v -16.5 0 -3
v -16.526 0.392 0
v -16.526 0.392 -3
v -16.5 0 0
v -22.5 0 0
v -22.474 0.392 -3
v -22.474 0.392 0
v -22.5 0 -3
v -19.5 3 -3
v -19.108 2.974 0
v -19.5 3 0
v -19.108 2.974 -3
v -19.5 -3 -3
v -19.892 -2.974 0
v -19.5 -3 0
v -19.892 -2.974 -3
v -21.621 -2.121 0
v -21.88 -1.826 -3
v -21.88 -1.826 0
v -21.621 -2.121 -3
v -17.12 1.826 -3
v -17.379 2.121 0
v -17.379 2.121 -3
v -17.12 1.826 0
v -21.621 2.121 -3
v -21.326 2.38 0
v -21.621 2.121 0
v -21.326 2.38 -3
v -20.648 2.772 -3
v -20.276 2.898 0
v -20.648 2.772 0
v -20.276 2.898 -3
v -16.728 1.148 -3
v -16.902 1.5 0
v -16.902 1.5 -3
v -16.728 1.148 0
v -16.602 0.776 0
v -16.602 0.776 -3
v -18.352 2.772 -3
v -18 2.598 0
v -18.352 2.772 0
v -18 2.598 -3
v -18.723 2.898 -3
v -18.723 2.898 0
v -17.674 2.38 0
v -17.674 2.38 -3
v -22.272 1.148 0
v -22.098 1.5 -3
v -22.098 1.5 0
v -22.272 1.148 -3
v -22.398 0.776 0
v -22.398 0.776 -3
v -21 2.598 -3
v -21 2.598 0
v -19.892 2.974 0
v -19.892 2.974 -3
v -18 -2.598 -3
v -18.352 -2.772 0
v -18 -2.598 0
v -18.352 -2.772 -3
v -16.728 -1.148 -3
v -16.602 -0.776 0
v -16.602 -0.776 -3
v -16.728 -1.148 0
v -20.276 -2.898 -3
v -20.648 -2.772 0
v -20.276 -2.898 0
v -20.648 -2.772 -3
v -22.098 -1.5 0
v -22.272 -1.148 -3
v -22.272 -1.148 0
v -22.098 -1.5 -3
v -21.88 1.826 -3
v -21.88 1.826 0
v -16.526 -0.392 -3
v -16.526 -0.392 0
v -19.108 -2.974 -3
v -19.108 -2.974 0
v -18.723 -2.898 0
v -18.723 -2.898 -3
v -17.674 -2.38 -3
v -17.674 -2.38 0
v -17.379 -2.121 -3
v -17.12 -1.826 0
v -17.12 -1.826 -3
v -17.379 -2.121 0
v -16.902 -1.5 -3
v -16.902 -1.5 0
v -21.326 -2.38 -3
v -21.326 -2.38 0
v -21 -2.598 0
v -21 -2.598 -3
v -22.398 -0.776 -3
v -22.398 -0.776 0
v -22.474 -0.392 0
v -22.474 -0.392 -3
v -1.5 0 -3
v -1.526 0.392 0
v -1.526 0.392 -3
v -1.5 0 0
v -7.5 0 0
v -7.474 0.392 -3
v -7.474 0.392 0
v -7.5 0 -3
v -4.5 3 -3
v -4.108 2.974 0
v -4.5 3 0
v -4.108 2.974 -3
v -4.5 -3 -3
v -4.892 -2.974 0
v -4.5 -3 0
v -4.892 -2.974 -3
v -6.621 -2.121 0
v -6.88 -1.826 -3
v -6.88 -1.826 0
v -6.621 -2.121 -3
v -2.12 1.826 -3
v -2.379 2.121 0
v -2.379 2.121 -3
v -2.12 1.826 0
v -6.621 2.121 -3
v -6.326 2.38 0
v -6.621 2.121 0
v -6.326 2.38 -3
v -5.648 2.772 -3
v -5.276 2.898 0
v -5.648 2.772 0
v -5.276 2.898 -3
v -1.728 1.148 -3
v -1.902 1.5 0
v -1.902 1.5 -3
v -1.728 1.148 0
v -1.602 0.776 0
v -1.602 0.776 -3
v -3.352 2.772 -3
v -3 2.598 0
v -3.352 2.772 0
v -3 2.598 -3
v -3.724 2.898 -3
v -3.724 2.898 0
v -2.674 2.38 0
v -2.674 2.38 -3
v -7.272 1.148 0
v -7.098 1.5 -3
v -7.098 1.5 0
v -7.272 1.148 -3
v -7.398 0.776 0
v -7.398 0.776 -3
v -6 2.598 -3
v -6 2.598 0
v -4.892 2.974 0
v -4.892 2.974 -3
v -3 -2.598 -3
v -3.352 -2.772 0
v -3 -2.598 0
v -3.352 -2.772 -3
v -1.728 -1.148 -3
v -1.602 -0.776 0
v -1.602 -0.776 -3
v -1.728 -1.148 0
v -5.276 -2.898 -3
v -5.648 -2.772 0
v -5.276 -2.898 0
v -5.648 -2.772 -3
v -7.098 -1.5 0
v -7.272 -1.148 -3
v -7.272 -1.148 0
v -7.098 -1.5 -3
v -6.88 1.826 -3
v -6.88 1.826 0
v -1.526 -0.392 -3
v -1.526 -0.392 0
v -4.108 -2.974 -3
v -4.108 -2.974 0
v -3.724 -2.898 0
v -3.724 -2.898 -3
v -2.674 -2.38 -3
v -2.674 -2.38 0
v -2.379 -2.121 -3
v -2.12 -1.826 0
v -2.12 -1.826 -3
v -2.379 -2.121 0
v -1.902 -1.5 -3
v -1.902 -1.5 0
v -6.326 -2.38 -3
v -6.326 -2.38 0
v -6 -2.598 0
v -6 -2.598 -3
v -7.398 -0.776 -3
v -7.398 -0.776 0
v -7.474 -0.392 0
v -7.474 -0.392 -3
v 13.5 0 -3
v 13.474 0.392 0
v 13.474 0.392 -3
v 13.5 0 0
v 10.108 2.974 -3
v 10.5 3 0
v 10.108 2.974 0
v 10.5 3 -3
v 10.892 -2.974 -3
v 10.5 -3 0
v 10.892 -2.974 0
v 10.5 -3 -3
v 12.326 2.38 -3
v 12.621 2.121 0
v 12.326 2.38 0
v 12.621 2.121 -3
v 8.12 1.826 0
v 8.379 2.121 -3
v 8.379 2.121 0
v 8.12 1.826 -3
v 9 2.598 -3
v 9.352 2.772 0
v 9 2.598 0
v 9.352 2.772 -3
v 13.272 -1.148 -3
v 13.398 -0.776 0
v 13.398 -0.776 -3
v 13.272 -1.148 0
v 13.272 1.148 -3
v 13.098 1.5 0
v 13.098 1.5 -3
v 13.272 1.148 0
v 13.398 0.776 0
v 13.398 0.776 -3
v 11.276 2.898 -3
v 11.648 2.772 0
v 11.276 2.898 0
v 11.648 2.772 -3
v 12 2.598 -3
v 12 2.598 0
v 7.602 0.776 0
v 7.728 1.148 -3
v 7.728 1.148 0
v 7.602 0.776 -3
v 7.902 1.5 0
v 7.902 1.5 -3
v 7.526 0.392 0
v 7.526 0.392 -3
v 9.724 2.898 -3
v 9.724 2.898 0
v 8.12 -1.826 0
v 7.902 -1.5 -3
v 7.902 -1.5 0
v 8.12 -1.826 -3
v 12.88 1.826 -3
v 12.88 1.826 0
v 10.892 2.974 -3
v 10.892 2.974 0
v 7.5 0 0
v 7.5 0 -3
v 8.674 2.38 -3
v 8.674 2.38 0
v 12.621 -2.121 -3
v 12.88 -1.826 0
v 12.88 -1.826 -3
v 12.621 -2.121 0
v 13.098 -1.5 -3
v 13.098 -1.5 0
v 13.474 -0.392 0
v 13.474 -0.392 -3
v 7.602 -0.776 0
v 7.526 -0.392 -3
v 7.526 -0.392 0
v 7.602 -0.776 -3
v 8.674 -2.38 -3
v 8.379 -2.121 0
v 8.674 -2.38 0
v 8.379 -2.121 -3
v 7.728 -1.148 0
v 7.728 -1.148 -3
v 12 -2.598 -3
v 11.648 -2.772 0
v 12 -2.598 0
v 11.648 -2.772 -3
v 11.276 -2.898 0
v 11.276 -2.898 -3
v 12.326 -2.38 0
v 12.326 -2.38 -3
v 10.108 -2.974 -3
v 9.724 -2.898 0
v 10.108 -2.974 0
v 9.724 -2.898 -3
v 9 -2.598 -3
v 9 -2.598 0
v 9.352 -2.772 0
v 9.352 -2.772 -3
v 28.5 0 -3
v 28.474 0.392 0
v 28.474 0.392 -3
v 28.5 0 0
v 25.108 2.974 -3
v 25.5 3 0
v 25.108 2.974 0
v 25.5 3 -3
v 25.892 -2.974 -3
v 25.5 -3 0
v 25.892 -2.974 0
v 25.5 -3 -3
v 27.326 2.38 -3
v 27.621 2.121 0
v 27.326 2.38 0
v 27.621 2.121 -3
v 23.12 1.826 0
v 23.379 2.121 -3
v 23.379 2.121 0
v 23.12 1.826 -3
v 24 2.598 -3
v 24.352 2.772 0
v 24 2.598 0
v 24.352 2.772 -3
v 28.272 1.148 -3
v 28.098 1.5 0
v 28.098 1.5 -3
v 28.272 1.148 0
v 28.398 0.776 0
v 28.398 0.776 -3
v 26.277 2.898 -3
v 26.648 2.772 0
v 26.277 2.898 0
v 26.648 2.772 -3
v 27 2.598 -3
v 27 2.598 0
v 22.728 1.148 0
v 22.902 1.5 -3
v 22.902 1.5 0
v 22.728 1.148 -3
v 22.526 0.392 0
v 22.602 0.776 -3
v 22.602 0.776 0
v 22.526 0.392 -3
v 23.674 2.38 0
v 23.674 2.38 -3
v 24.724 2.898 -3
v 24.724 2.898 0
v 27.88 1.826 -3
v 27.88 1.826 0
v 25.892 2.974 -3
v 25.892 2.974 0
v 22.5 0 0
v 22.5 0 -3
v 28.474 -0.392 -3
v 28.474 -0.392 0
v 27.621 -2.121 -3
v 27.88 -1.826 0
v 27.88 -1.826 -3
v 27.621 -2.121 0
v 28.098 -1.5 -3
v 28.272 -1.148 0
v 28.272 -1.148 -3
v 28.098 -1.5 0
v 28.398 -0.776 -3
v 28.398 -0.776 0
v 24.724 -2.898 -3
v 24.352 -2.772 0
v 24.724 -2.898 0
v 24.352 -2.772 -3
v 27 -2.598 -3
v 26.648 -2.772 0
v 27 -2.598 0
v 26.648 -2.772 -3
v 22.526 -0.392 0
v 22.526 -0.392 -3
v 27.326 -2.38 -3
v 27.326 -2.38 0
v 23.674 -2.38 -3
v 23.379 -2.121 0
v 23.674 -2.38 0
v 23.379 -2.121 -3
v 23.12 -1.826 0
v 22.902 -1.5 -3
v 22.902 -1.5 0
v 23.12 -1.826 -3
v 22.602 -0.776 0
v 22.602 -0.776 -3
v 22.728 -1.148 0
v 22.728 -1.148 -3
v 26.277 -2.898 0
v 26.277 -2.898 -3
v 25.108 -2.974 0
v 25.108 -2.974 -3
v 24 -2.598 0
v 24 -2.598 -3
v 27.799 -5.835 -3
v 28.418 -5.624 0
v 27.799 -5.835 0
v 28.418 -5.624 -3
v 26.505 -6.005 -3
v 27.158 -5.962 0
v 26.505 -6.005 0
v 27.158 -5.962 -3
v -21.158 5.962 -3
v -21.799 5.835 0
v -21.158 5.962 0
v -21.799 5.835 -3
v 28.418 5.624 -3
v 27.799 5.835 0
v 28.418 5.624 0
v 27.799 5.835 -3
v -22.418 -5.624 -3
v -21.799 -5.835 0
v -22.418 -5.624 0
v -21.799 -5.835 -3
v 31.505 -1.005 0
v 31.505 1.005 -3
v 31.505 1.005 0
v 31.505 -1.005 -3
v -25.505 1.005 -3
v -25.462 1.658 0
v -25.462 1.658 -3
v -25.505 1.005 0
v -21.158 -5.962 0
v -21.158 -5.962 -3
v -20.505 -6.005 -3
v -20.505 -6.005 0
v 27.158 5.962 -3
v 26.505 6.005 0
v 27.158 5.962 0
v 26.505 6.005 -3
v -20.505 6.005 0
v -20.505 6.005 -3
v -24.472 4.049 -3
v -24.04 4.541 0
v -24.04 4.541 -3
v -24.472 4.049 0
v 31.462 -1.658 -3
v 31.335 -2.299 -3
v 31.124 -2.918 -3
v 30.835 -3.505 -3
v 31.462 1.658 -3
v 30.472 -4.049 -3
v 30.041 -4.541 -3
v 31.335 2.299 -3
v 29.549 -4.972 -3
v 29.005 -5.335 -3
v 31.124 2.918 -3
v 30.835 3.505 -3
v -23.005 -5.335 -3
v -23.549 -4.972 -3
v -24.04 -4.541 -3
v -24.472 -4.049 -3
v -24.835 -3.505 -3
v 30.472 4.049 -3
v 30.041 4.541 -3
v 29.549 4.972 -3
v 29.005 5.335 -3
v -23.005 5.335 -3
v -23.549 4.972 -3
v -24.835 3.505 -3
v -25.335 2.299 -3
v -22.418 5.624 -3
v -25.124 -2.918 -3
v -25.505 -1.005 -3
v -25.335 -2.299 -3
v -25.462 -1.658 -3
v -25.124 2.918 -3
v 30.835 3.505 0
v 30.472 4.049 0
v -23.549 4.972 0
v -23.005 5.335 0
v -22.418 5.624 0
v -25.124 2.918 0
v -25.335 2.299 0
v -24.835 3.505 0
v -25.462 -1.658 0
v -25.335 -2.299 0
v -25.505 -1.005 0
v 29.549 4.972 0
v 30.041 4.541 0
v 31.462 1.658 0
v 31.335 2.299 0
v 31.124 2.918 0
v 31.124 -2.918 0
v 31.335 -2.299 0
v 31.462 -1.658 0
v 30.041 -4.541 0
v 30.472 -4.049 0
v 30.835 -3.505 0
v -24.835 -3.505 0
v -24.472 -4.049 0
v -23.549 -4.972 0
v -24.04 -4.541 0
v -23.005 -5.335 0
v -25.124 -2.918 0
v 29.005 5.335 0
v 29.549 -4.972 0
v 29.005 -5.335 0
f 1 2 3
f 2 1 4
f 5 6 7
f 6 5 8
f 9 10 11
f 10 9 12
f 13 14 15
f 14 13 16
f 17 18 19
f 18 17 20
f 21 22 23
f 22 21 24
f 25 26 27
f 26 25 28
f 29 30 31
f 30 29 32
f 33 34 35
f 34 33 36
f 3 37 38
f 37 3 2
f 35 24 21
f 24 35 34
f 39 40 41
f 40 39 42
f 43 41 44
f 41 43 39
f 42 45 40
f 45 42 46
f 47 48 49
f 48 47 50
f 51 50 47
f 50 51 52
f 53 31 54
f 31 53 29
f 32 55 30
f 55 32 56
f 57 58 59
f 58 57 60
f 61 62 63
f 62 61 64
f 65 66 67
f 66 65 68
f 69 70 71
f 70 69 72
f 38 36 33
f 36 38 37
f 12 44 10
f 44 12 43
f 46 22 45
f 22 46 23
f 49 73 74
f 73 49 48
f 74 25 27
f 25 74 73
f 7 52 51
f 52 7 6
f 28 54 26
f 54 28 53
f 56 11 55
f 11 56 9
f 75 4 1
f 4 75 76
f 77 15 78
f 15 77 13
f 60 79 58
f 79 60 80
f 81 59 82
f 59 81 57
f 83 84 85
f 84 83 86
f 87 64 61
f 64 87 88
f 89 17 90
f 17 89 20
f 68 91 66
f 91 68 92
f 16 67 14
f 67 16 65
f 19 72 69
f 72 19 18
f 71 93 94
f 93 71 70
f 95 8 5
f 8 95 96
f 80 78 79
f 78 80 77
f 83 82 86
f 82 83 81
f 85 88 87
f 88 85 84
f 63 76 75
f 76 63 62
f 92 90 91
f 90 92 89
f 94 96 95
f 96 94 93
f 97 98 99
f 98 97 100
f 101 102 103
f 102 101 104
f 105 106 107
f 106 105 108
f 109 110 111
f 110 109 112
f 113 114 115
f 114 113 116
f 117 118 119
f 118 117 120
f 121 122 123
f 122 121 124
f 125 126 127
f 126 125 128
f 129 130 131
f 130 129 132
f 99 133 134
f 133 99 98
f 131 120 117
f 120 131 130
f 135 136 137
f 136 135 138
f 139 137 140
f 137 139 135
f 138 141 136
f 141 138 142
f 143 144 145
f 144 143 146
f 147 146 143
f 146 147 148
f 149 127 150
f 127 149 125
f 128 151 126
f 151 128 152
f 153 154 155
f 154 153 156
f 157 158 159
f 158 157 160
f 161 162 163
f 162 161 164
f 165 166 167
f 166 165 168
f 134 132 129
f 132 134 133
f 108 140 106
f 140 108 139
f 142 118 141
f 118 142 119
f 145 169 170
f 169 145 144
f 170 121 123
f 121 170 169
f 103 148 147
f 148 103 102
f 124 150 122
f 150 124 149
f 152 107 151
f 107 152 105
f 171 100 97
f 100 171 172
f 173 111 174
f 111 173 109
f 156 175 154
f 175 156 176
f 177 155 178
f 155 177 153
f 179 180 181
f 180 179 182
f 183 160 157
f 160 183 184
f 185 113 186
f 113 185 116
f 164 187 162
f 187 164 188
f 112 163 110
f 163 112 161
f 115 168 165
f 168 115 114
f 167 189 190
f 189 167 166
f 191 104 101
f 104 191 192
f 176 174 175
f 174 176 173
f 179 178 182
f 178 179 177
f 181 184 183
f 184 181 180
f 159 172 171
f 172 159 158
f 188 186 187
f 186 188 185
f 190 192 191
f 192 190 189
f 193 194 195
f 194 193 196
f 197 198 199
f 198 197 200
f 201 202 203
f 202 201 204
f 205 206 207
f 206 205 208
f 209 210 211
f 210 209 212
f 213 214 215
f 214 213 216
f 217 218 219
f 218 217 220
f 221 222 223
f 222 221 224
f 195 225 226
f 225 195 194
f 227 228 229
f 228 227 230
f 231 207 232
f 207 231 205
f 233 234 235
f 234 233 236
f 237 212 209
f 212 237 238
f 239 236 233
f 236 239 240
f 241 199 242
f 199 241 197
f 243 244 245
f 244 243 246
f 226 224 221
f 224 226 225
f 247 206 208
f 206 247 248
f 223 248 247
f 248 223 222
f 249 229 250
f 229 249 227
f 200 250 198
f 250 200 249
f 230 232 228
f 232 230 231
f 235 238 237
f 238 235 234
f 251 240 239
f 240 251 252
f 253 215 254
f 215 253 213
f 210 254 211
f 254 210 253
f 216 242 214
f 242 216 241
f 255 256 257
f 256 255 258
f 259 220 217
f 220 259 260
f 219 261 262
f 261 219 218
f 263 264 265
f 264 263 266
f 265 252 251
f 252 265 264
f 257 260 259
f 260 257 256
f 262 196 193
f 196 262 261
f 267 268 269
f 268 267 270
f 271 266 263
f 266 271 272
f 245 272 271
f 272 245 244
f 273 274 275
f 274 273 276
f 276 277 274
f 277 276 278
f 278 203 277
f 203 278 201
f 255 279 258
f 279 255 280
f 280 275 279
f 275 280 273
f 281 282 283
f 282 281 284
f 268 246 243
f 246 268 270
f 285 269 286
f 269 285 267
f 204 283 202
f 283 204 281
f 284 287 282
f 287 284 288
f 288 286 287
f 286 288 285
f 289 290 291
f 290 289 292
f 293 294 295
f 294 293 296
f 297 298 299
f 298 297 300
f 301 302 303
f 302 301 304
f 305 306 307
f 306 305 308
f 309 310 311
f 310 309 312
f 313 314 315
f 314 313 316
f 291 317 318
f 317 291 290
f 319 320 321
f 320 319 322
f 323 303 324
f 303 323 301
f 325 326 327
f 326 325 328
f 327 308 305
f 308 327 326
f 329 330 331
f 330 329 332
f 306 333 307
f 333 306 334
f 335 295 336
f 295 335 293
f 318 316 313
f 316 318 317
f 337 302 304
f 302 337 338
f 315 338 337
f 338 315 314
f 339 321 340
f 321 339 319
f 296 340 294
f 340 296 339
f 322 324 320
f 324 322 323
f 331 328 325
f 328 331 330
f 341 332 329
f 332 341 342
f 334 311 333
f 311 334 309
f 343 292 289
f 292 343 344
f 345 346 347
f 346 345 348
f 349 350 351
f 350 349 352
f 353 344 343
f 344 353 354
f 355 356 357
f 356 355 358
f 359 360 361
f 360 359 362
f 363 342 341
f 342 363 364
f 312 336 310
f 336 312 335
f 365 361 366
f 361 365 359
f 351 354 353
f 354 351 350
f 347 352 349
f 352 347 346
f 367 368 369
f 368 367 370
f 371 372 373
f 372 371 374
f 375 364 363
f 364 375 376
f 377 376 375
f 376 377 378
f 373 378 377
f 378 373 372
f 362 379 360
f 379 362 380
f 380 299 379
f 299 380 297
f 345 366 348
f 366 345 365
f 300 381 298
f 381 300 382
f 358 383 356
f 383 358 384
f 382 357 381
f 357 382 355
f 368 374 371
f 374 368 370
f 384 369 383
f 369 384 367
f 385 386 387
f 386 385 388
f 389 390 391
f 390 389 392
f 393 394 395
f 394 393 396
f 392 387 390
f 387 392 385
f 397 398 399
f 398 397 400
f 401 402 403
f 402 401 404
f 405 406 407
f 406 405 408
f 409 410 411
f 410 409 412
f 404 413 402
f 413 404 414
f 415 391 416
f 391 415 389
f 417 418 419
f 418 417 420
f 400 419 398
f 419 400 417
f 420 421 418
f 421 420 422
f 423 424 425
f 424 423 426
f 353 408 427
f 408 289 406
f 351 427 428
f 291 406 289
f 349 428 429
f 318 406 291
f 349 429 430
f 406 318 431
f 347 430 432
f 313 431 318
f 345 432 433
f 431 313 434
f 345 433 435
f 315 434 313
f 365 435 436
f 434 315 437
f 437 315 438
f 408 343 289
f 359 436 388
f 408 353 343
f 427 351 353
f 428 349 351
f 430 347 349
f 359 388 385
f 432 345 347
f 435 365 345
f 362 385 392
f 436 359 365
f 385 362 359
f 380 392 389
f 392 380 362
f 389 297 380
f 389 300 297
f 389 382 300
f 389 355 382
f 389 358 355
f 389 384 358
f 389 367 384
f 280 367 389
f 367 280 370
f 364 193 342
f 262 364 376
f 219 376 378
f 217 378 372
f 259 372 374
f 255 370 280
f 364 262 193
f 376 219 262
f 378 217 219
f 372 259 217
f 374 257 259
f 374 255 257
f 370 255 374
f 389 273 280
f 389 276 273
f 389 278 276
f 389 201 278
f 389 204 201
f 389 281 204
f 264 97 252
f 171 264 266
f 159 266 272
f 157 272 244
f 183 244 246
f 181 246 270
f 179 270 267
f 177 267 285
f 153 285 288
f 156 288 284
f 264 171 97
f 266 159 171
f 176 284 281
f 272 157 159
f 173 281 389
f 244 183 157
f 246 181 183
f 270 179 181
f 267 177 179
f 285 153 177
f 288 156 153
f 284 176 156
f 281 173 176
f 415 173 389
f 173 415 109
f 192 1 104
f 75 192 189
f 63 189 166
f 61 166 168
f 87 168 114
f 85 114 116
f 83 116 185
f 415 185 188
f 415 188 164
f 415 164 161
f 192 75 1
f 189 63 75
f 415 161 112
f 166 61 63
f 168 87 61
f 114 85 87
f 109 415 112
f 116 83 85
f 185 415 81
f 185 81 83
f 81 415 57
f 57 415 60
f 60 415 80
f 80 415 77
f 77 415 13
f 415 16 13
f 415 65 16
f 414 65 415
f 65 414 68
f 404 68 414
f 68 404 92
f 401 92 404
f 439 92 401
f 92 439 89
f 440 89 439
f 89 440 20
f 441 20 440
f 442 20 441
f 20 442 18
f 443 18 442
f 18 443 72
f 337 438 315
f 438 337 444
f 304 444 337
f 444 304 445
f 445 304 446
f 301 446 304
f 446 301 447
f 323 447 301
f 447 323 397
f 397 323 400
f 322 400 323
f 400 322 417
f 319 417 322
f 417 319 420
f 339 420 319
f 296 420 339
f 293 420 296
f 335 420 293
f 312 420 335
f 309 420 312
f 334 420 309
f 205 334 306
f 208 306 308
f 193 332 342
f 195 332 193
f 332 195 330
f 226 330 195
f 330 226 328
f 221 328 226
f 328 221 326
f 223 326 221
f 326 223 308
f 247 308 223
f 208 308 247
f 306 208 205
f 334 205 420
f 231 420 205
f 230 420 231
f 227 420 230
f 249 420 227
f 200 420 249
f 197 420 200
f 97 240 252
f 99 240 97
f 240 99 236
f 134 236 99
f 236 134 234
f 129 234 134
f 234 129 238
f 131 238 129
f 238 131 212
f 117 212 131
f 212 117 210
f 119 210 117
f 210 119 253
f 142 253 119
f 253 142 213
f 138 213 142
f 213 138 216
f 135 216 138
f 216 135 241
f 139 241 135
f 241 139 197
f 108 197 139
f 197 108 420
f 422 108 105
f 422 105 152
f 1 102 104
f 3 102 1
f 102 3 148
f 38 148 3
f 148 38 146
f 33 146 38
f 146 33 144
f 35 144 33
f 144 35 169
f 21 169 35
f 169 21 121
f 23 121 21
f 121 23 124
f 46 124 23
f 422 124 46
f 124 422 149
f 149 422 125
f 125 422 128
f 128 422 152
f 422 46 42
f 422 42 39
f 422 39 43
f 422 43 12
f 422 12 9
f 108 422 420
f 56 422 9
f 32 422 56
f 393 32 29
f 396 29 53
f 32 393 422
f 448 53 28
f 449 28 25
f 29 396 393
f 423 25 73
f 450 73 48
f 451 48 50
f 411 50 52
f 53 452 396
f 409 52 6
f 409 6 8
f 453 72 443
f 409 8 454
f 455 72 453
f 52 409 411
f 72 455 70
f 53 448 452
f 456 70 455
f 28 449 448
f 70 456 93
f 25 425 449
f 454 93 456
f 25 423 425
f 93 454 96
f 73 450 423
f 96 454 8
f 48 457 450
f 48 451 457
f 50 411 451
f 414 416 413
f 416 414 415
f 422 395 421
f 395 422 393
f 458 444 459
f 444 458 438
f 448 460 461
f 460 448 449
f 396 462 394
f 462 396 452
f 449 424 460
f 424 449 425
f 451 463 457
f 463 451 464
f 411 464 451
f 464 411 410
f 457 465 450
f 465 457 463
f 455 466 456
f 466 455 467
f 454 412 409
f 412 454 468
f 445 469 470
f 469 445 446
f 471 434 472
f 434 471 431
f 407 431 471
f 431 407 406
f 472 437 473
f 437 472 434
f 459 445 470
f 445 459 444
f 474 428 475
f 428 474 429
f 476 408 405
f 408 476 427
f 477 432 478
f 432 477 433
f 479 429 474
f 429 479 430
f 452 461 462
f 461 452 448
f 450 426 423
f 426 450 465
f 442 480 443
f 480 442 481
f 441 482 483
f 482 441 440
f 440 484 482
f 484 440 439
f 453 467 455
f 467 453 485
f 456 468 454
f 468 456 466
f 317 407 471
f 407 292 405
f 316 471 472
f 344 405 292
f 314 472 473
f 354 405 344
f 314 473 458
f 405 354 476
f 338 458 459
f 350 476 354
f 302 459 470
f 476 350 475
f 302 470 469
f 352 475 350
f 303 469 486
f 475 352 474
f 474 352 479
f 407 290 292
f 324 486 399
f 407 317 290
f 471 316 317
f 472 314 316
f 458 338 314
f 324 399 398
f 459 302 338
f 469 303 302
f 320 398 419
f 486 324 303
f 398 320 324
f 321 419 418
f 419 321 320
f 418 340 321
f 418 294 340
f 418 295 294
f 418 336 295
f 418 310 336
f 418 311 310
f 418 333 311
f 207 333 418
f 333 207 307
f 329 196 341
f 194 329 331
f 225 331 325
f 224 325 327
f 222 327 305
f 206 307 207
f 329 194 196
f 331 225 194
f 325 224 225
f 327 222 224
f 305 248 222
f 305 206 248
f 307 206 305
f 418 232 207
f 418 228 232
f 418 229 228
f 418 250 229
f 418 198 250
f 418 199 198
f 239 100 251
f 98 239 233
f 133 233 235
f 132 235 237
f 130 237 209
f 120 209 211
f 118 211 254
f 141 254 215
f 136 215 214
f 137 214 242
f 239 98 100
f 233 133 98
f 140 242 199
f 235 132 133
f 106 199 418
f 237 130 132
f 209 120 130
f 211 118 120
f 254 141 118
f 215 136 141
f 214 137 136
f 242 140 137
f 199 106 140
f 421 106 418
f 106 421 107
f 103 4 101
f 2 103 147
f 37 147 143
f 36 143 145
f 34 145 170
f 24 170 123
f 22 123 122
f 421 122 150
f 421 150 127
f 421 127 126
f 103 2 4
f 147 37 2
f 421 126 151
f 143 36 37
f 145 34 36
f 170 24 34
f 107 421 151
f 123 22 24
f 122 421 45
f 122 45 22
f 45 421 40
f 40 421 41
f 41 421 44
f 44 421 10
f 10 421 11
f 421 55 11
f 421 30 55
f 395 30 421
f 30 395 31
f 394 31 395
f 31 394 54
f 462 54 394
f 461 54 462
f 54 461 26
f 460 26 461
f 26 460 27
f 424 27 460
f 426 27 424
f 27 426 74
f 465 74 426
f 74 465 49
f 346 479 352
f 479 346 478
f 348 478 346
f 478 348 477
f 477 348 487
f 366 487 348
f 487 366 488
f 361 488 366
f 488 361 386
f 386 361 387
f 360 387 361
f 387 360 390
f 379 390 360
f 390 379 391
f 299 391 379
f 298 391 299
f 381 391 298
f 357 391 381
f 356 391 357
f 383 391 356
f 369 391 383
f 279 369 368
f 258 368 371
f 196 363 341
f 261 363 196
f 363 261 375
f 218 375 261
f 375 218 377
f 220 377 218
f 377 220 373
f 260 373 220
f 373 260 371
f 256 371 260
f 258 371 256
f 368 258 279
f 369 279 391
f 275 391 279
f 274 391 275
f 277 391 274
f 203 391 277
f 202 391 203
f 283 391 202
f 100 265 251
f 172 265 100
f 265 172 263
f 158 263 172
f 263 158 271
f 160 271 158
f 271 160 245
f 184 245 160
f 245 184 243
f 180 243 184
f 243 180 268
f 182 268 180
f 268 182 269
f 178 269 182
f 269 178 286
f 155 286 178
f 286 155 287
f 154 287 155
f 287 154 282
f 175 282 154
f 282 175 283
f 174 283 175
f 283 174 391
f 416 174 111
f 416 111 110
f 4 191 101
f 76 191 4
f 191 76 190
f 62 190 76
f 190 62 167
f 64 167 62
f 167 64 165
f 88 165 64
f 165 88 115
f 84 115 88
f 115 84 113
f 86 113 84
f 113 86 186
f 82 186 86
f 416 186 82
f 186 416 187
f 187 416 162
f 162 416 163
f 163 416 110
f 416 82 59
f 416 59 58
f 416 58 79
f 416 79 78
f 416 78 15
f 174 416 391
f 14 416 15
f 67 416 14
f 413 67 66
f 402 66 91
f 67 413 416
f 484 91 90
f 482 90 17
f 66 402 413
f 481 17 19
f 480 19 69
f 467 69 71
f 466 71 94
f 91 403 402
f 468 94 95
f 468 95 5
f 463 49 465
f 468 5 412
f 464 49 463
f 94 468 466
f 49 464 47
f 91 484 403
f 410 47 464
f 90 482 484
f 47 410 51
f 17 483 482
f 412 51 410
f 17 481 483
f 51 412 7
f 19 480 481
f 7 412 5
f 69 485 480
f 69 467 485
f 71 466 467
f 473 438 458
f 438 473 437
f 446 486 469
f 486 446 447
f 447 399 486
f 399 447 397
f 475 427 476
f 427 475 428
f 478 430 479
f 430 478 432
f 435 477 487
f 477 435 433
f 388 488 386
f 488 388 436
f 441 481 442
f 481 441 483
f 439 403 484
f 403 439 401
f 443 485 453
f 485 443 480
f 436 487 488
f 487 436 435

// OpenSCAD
// Generated by SolidPython 1.1.3 on 2022-09-15 16:37:10
$fn = 48;


difference() {
	union() {
		translate(v = [3, 0, 0]) {
			difference() {
				union() {
					color(alpha = 1.0000000000, c = "Gold") {
						translate(v = [0, 0, 0]) {
							rotate(a = [0, 0, 0]) {
								translate(v = [0, 0, -3]) {
									linear_extrude(height = 3) {
										offset(r = 5) {
											square(center = true, size = [47.0100000000, 2.0100000000]);
										}
									}
								}
							}
						}
					}
				}
				union() {
					color(alpha = 1.0000000000, c = "Gold") {
						translate(v = [-22.5000000000, 0.0000000000, 0]) {
							rotate(a = [0, 0, 0]) {
								translate(v = [0, 0, -250]) {
									cylinder(h = 500, r = 3.0000000000);
								}
							}
						}
					}
					color(alpha = 1.0000000000, c = "Gold") {
						translate(v = [-7.5000000000, 0.0000000000, 0]) {
							rotate(a = [0, 0, 0]) {
								translate(v = [0, 0, -250]) {
									cylinder(h = 500, r = 3.0000000000);
								}
							}
						}
					}
					color(alpha = 1.0000000000, c = "Gold") {
						translate(v = [7.5000000000, 0.0000000000, 0]) {
							rotate(a = [0, 0, 0]) {
								translate(v = [0, 0, -250]) {
									cylinder(h = 500, r = 3.0000000000);
								}
							}
						}
					}
					color(alpha = 1.0000000000, c = "Gold") {
						translate(v = [22.5000000000, 0.0000000000, 0]) {
							rotate(a = [0, 0, 0]) {
								translate(v = [0, 0, -250]) {
									cylinder(h = 500, r = 3.0000000000);
								}
							}
						}
					}
				}
			}
		}
	}
	union();
}
/***********************************************
*********      SolidPython code:      **********
************************************************
 
import subprocess

from solid.objects import *
from solid import scad_render_to_file, scad_render

import math

import os

##################################################################################################################################################
##################################################################################################################################################
##################################################################################################################################################
##################################################################################################################################################
######  DIMENSION STUFF
##################################################################################################################################################
##################################################################################################################################################
##################################################################################################################################################
##################################################################################################################################################


mode = "3DPR"
#mode = "LAZE"
#mode = "TURE"
#mode = ""


######  Countersunk
countersunkM = []
WIDTH = 0
DEPTH = 1
countersunkM1width = 0; countersunkM1depth = 0; countersunkM2width = 0; countersunkM2depth = 0
countersunkM3width = 0
countersunkM3depth = 0
countersunkM4width = 0
countersunkM4depth = 0
countersunkM5width = 0
countersunkM5depth = 0
countersunkM6width = 0
countersunkM6depth = 0

######  Holes
holeM = []
holeM1 = 0
holeM2 = 0
holeM3 = 0
holeM4 = 0
holeM5 = 0
holeM6 = 0

######  Nuts
nutM = []
NUTWIDTH = 0
NUTDEPTH = 1
nutM1width = 0
nutM1depth = 0
nutM2width = 0
nutM2depth = 0
nutM3width = 0
nutM3depth = 0
nutM4width = 0
nutM4depth = 0
nutM5width = 0
nutM5depth = 0
nutM6width = 0
nutM6depth = 0

######  OOEB
ooebPinWidth = 0
ooebPinWidthWide = 0


######  Colors
colDefault = "Gold"

colOOEBbase = colDefault

colLEDRed = "red"
colWire = "gray"
    ######  Resistor
colRes = list()
colResistor = "beige"

colResBlack = "black"
colRes.append(colResBlack)
colResBrown = "brown"
colRes.append(colResBrown)
colResRed = "red"
colRes.append(colResRed)
colResOrange = "orange"
colRes.append(colResOrange)
colResYellow = "yellow"
colRes.append(colResYellow)
colResGreen = "green"
colRes.append(colResGreen)
colResBlue = "blue"
colRes.append(colResBlue)
colResPurple = "purple"
colRes.append(colResPurple)
colResGray = "gray"
colRes.append(colResGray)
colResWhite = "white"
colRes.append(colResWhite)





def changeMode(m="3DPR"):
    #print("####################################################      CHANGING MODES TO: " + m)
    global mode
    mode = m
    ######  Countersunk
    global countersunkM, countersunkM1width, countersunkM1depth, countersunkM2width, countersunkM2depth, countersunkM3width, countersunkM3depth, countersunkM4width, countersunkM4depth, countersunkM5width, countersunkM5depth, countersunkM6width, countersunkM6depth
    countersunkM = []
    countersunkM.append([0,0])
    countersunkM1width = 0 if mode== "3DPR" else 0
    countersunkM1depth = 0 if mode== "3DPR" else 0
    countersunkM.append([countersunkM1width,countersunkM1depth])
    countersunkM2width = 0 if mode== "3DPR" else 0
    countersunkM2depth = 0 if mode== "3DPR" else 0
    countersunkM.append([countersunkM2width,countersunkM2depth])
    countersunkM3width = 5.5/2+0.6 if mode== "3DPR" else 5.5/2
    countersunkM3depth = 1.7 if mode== "3DPR" else 1.7
    countersunkM.append([countersunkM3width,countersunkM3depth])
    countersunkM4width = 0 if mode== "3DPR" else 0
    countersunkM4depth = 0 if mode== "3DPR" else 0
    countersunkM.append([countersunkM4width,countersunkM4depth])
    countersunkM5width = 0 if mode== "3DPR" else 0
    countersunkM5depth = 0 if mode== "3DPR" else 0
    countersunkM.append([countersunkM5width,countersunkM5depth])
    countersunkM6width = 0 if mode== "3DPR" else 0
    countersunkM6depth = 0 if mode== "3DPR" else 0
    countersunkM.append([countersunkM6width,countersunkM6depth])
    ######  Holes
    global holeM, holeM1, holeM2, holeM3, holeM4, holeM5, holeM6, holeM7, holeM8
    holeM = []
    holeM1 = 1.2/2 if mode== "3DPR" else 1/2
    holeM2 = 2.3/2 if mode== "3DPR" else 2/2
    holeM3 = 3.4/2 if mode== "3DPR" else 3/2
    holeM4 = 4.4/2 if mode== "3DPR" else 4/2
    holeM5 = 5.4/2 if mode== "3DPR" else 5/2
    holeM6 = 6.5/2 if mode== "3DPR" else 6/2
    holeM7 = 7.5/2 if mode== "3DPR" else 7/2
    holeM8 = 8.6/2 if mode== "3DPR" else 8/2
    holeM.append(0)
    holeM.append(holeM1)
    holeM.append(holeM2)
    holeM.append(holeM3)
    holeM.append(holeM4)
    holeM.append(holeM5)
    holeM.append(holeM6)
    holeM.append(holeM7)
    holeM.append(holeM8)
    #####  Nuts
    global nutM, nutM1width, nutM1depth, nutM2width, nutM2depth, nutM3width, nutM3depth, nutM4width, nutM4depth, nutM5width, nutM5depth, nutM6width, nutM6depth
    nutM = []
    nutM.append([0,0]) 
    #M1 Nut
    nutM1width = 0
    nutM1depth = 0
    nutM.append([nutM1width,nutM1depth])    
    #M2 Nut
    nutM2width = 0
    nutM2depth = 0
    nutM.append([nutM2width,nutM2depth])    
    #M3 Nut
    #nutM3width = 6.05 if mode== "3DPR" else 5.5
    nutM3width = 6.05 * 1.154 if mode== "3DPR" else 5.5 * 1.154
    nutM3depth = 2.5 if mode== "3DPR" else 2.5
    nutM.append([nutM3width,nutM3depth])    
    #M4 Nut
    nutM4width = 0
    nutM4depth = 0
    nutM.append([nutM4width,nutM4depth])    
    #M5 Nut
    nutM5width = 0
    nutM5depth = 0
    nutM.append([nutM5width,nutM5depth])    
    #M6 Nut
    nutM6width = 11 if mode== "3DPR" else 10
    nutM6depth = 5 if mode== "3DPR" else 5
    nutM.append([nutM6width,nutM6depth])    

    ######  OOEB
    global ooebPinWidth,  ooebPinWidthWide

    ooebPinWidth = 0.6
    if(mode=="3DPR" or mode=="LAZE"):
        ooebPinWidth = 0.6 + 0.6
    ooebPinWidthWide = 1.2
    if(mode=="3DPR" or mode=="LAZE"):
        ooebPinWidthWide = 1.2 + 0.6


changeMode()


""""    
holeM12D = s=="3DPR" ? 1.4/2 : 1.2/2;
holeM16D = s=="3DPR" ? 1.8/2 : 1.6/2;
holeM2 = s=="3DPR" ? 2.3/2 : 2/2;
holeM25D = s=="3DPR" ? 2.8/2 : 2.5/2;
holeM27D = s=="3DPR" ? 3.1/2 : 2.7/2;    
holeM3 = s=="3DPR" ? 3.4/2 : 3/2;
holeM35D = s=="3DPR" ? 3.9/2 : 35/2;
holeM4 = s=="3DPR" ? 4.4/2 : 4/2;
holeM5 = s=="3DPR" ? 5.4/2 : 5/2;
holeM6 = s=="3DPR" ? 6.5/2 : 6/2;
holeM6Minus = s=="3DPR" ? 5.8/2 : 5.9/2;
holeM7 = s=="3DPR" ? 7.5/2 : 7/2;
holeM8 = s=="3DPR" ? 8.6/2 : 8/2;
holeM9 = s=="3DPR" ? 9.6/2 : 9/2;
holeM10 = s=="3DPR" ? 10.6/2 : 10/2;
holeM11 = s=="3DPR" ? 11.6/2 : 11/2;
holeM12 = s=="3DPR" ? 12.6/2 : 12/2;
holeM13 = s=="3DPR" ? 13.6/2 : 13/2;
holeM14 = s=="3DPR" ? 14.6/2 : 14/2;
holeM15 = s=="3DPR" ? 15.6/2 : 15/2;
holeM16 = s=="3DPR" ? 16.6/2 : 16/2;
holeM17 = s=="3DPR" ? 17.6/2 : 17/2;
holeM18 = s=="3DPR" ? 18.6/2 : 18/2;
holeM19 = s=="3DPR" ? 19.6/2 : 19/2;
holeM20 = s=="3DPR" ? 20.6/2 : 20/2;
"""

##################################################################################################################################################
##################################################################################################################################################
##################################################################################################################################################
##################################################################################################################################################
######  REGULAR STUFF
##################################################################################################################################################
##################################################################################################################################################
##################################################################################################################################################
##################################################################################################################################################


def setMode(mode="3DPR"):
    changeMode(mode)

def getMode():
    return mode



def saveToScad(fileName, parts):
    dir =  os.path.dirname(os.path.abspath(fileName))
    Path(dir).mkdir(parents=True, exist_ok=True)
    file_out = scad_render_to_file(parts, fileName, file_header=f'$fn = 48;')


def saveToDxf(fileIn, fileOut=""):
    if fileOut == "":
        fileOut = fileIn.replace(".scad",".dxf")
    saveToFile(fileIn, fileOut)
    
def saveToPng(fileIn, fileOut="",extra="--render"):
    if fileOut == "":
        fileOut = fileIn.replace(".scad",".png")
    saveToFile(fileIn, fileOut)

def saveToStl(fileIn, fileOut=""):
    if fileOut == "":
        fileOut = fileIn.replace(".scad",".stl")
    saveToFile(fileIn, fileOut)
    
def saveToSvg(fileIn, fileOut=""):
    if fileOut == "":
        fileOut = fileIn.replace(".scad",".svg")
    saveToFile(fileIn, fileOut)

def saveToFile(fileIn, fileOut,extra=""):
    extra = extra + " --colorscheme Tomorrow"

    launchStr = 'openscad -o "' + fileOut + '"' + extra + ' "' + fileIn + '"'
    if ".png" in fileOut:
        launchStr = launchStr + " --render"
    print("            saveToFile launch string: " + launchStr)
    subprocess.run(launchStr)
    x=0



def insert(item,pos=[None,None,None],x=0,y=0,z=0,ex=0,size=[None,None,None],length=0,rot=[None,None,None],rotX=0,rotY=0,rotZ=0,width=0,height=0,depth=100,rad=0,rad2=0,color=colDefault,alpha=1,OOwidth=0,OOheight=0,holes=True,negative=True, name="",m=""):
    return OPSCInsert(item,pos,x,y,z,ex,size,length,rot,rotX,rotY,rotZ,width,height,depth,rad,rad2,color,alpha,OOwidth,OOheight,holes,negative,name,m=m)


def OPSCInsert(item,pos=[None,None,None],x=0,y=0,z=0,ex=0,size=[None,None,None],length=0,rot=[None,None,None],rotX=0,rotY=0,rotZ=0,width=0,height=0,depth=100,rad=0,rad2=0,col=colDefault,alpha=1,OOwidth=0,OOheight=0,holes=True,negative=True, name="",m=""):
    
    """
        color(color,alpha){
            translate([x,y,z]){
                    rotate([rotX,rotY,rotZ]){
    """
    returnValue = ""

    #print(pos)

    if pos[0] != None:
        x=pos[0]
        y=pos[1]
        z=pos[2]
    if rot[0] != None:
        rotX=rot[0]
        rotY=rot[1]
        rotZ=rot[2]
    
    returnValue = color(col)(translate((x,y,z))(
                            rotate((rotX,rotY,rotZ))(
                                OPSCInsertIf(item,pos,x,y,z,ex,size,length,rot,rotX,rotY,rotZ,width,height,depth,rad,rad2,col,alpha,OOwidth,OOheight,holes,negative,name,m=m)
                            )
                        ))
                
    

    return returnValue

def OPSCInsertIf(item,pos=[None,None,None],x=0,y=0,z=0,ex=0,size=[None,None,None],length=0,rot=[None,None,None],rotX=0,rotY=0,rotZ=0,width=0,height=0,depth=100,rad=0,rad2=0,color=colDefault,alpha=1,OOwidth=0,OOheight=0,holes=True,negative=True, name="",m=""):
    returnValue = cube([10,10,10])

    if size[0] != None:
        width=size[0]
        height=size[1]
        depth=size[2]

    #print("    OPSCInsert item:" + str(item) + " at:[" + str(x) + "," + str(y) + "," + str(z) + "] size: [" + str(width) + "," + str(height) + "," + str(depth) + "]")

    if(item=="cube"):
        returnValue =  translate([0,0,-depth/2])(cube([width,height,depth],center=True).set_modifier(m))
    elif(item=="cylinder"):        
        returnValue = translate([0,0,-depth/2])(cylinder(r=rad,h=depth,center=True).set_modifier(m))
    elif(item=="sphere"):        
        returnValue = translate([0,0,-rad])(sphere(r=rad).set_modifier(m))
    elif(item=="plane"):
        if depth == 100:
            returnValue = insert("cube",size=[1000,1000,0.1],color=color).set_modifier(m)            
        else:
            returnValue = insert("cube",size=[1000,1000,depth],color=color).set_modifier(m)                        
    elif(item=="cubeRounded"):
        if(rad == 0):
                            rad = 5
        returnValue =  translate([0,0,-depth])(
                        linear_extrude(height=depth)(                        
                            offset(r=rad)(
                                square((width-rad*2+.01,height-rad*2+.01),center=True).set_modifier(m)
                                )
                            )
        )
    ######  Countersunk
    elif(item == "countersunkM1" or item == "csM1" ):
        returnValue = OSPCgetCountersunk(rad=1,m=m)
    elif(item == "countersunkM2" or item == "csM2" ):
        returnValue = OSPCgetCountersunk(rad=2,m=m)
    elif(item == "countersunkM3" or item == "csM3" ):
        returnValue = OSPCgetCountersunk(rad=3,m=m)
    elif(item == "countersunkM4" or item == "csM4" ):
        returnValue = OSPCgetCountersunk(rad=4,m=m)
    elif(item == "countersunkM5" or item == "csM5" ):
        returnValue = OSPCgetCountersunk(rad=5,m=m)
    elif(item == "countersunkM6" or item == "csM6" ):
        returnValue = OSPCgetCountersunk(rad=6,m=m)
    elif(item == "countersunk" or item == "cs"):
        returnValue = OSPCgetCountersunk(rad=rad,m=m)


    ######  Holes    
    elif(item == "holeM1"):
        returnValue = OSPCgetHole(rad=1,m=m)
    elif(item == "holeM2"):
        returnValue = OSPCgetHole(rad=2,m=m)
    elif(item == "holeM3"):
        returnValue = OSPCgetHole(rad=3,m=m)
    elif(item == "holeM4"):
        returnValue = OSPCgetHole(rad=4,m=m)
    elif(item == "holeM5"):
        returnValue = OSPCgetHole(rad=5,m=m)
    elif(item == "holeM6"):
        returnValue = OSPCgetHole(rad=6,m=m)
    elif(item == "holeM7"):
        returnValue = OSPCgetHole(rad=7,m=m)
    elif(item == "holeM8"):
        returnValue = OSPCgetHole(rad=8,m=m)
    elif(item == "hole"):
        returnValue = OSPCgetHole(rad=rad,m=m)

    ######  Nuts
    elif(item == "nutM1"):
        returnValue = OSPCgetNut(rad=1,depth=depth,m=m)
    elif(item == "nutM2"):
        returnValue = OSPCgetNut(rad=2,depth=depth,m=m)
    elif(item == "nutM3"):
        returnValue = OSPCgetNut(rad=3,depth=depth,m=m)
    elif(item == "nutM4"):
        returnValue = OSPCgetNut(rad=4,depth=depth,m=m)
    elif(item == "nutM5"):
        returnValue = OSPCgetNut(rad=5,depth=depth,m=m)
    elif(item == "nutM6"):
        returnValue = OSPCgetNut(rad=6,depth=depth,m=m)
    elif(item == "nut"):
        returnValue = OSPCgetNut(rad=rad,depth=depth,m=m)
    return returnValue

                

def OSPCgetHole(rad,m=""):
    return translate([0,0,-250])(cylinder(r=holeM[rad],h=500).set_modifier(m))

def OSPCgetNut(rad,depth,m=""):
    depth = nutM[rad][NUTDEPTH] if depth==100 else depth
    returnValue = OPSChexagon(nutM[rad][NUTWIDTH],depth=depth,m=m)
    return returnValue

def OSPCgetCountersunk(rad,m=""):
    depth=countersunkM[rad][DEPTH]
    returnValue = translate([0,0,-depth])(cylinder(h=depth,r2=countersunkM[rad][WIDTH],r1=holeM[rad])).set_modifier(m)
    return returnValue

def OPSChexagon(width,depth,m=""):
    angles = []
    for a in range(0,6):
        angles.append((a*360/6)+30)
    points = []
    for angle in angles:
        x = math.cos((math.pi/180)*angle)*(width/2)
        y = math.sin((math.pi/180)*angle)*(width/2)
        points.append([x,y])

        rv = polygon(points)
        rv = linear_extrude(height=depth)(rv)
        rv = translate([0,0,-depth])(rv)
        rv = rv.set_modifier(m)

    return rv

def OPSChexagonOld(width,depth,m=""):
    cutter = item()
    wid=width*2
    cutter.addPos(insert("cube",pos=[wid/2+width/2,0,0],size=[wid,wid,depth]))
    cutter.addPos(insert("cube",pos=[-wid/2-width/2,0,0],size=[wid,wid,depth]))

    cut = cutter.getPart()
    #print(depth)
    returnValue = difference()(
        translate([0,0,-depth/2])(cube([wid,wid,depth],center=True)),
        cut,
        rotate([0,0,60])(cut),
        rotate([0,0,-60])(cut)
    ).set_modifier(m)

    return returnValue

class item:

    def __init__(self):
        self.posItems=list()
        self.negItems=list()

    def isEmpty(self):        
        testString = scad_render(self.getPart())
        #print("test String length: " + str(len(testString)))
        returnValue = False
        if len(testString) == 270:            
            returnValue = True
        return returnValue

    def addPos(self,part):
        self.posItems.append(part)
    def addNeg(self,part):
        self.negItems.append(part)

    def getPart(self):
        returnValue = difference()(
            union()(self.posItems),
            union()(self.negItems)
        )
        return returnValue

    def getLaser(self,start=0,layers=1,thickness=-3,tileDif=200):
        rv= []

        for x in range(layers):
            rv.append(translate([0,x*tileDif,0])(
                    projection()(
                        intersection()(
                            insert("plane",z=start+x*thickness),
                            self.getPart()
                        )
                    )
            )
            )
        return union()(rv)

    def getSplit(self,start=0,depth=6,tileDif=200):
        rv= []

        rv.append(translate([0,0,0])(
            intersection()(
                insert("cube",size=[100,100,depth],z=start),
                self.getPart()
            )
        )
        )

        rv.append(translate([0,0,depth])(rotate([180,0,0])(translate([0,tileDif,depth])(
            intersection()(
                insert("cube",size=[100,100,depth],z=start-depth),
                self.getPart()
            )
        )
        )
        )
        )        
        return union()(rv)


 
 
************************************************/
